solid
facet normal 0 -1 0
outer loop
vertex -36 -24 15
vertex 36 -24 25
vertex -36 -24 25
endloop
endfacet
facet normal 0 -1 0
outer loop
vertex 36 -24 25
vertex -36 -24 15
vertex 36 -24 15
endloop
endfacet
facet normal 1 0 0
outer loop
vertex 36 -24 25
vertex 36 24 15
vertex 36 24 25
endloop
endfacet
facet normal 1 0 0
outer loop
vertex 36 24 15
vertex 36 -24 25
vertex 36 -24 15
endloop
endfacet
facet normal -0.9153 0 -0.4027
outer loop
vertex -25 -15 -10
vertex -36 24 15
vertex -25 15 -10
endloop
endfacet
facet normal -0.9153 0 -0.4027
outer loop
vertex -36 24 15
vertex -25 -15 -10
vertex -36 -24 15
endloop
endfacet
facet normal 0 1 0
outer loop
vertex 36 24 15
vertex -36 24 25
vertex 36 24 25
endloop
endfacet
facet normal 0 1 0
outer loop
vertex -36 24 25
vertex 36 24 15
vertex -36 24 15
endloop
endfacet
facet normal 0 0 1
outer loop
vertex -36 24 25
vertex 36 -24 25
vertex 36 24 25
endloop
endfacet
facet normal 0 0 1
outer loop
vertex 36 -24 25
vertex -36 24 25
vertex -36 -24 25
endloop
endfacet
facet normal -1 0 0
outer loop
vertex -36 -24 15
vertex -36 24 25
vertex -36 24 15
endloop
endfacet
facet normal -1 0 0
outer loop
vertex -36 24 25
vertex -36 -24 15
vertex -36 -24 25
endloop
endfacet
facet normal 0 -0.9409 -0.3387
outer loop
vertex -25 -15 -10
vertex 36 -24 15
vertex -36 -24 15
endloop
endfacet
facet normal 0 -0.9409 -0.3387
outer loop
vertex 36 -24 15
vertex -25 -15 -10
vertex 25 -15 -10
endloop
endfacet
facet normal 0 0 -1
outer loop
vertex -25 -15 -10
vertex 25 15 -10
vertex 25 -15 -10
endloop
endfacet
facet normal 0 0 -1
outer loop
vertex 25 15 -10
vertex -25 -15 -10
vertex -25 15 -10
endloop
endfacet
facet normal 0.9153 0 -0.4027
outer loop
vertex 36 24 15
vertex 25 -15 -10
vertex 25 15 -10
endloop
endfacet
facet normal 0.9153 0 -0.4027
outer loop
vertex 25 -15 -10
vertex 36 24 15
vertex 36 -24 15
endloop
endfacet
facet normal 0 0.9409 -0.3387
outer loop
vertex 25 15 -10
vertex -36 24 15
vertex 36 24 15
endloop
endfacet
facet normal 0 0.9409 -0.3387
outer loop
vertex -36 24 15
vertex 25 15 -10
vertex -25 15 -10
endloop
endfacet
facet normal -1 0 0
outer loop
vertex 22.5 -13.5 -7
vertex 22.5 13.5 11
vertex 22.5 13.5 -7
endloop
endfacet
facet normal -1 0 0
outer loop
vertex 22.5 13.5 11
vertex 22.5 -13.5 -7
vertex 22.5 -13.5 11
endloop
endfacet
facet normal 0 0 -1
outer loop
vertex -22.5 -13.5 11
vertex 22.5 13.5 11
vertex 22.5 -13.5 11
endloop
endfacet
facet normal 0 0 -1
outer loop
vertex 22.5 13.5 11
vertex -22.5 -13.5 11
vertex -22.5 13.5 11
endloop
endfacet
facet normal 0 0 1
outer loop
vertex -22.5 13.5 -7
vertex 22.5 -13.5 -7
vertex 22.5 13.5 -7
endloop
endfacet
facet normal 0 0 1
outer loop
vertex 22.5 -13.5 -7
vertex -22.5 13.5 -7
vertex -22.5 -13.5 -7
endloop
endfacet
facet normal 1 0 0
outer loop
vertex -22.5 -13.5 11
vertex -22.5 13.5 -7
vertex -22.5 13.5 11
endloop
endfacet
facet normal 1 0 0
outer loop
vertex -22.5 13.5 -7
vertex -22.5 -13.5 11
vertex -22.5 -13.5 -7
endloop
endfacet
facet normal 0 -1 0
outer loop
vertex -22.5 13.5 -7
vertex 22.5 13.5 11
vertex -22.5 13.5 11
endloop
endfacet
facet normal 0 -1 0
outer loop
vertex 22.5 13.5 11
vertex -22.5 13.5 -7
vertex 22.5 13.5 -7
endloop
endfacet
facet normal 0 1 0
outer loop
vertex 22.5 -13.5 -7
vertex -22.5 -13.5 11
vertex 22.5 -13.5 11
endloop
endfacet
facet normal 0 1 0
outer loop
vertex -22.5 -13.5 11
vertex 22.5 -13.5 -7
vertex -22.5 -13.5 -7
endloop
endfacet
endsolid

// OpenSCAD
module rectangular_housing() {
    difference() {
        // Outer shape with trapezoidal cross-section and flanged edges
        hull() {
            translate([0, 0, 0]) 
                scale([1, 1, 1]) 
                cube([50, 30, 20], center = true);
            translate([0, 0, 20]) 
                scale([1.2, 1.2, 1]) 
                cube([60, 40, 10], center = true);
        }
        // Inner hollow part
        translate([0, 0, 2]) {
            scale([0.9, 0.9, 1]) {
                cube([50, 30, 18], center = true);
            }
        }
    }
}

// Call the module to render the rectangular housing
rectangular_housing();
